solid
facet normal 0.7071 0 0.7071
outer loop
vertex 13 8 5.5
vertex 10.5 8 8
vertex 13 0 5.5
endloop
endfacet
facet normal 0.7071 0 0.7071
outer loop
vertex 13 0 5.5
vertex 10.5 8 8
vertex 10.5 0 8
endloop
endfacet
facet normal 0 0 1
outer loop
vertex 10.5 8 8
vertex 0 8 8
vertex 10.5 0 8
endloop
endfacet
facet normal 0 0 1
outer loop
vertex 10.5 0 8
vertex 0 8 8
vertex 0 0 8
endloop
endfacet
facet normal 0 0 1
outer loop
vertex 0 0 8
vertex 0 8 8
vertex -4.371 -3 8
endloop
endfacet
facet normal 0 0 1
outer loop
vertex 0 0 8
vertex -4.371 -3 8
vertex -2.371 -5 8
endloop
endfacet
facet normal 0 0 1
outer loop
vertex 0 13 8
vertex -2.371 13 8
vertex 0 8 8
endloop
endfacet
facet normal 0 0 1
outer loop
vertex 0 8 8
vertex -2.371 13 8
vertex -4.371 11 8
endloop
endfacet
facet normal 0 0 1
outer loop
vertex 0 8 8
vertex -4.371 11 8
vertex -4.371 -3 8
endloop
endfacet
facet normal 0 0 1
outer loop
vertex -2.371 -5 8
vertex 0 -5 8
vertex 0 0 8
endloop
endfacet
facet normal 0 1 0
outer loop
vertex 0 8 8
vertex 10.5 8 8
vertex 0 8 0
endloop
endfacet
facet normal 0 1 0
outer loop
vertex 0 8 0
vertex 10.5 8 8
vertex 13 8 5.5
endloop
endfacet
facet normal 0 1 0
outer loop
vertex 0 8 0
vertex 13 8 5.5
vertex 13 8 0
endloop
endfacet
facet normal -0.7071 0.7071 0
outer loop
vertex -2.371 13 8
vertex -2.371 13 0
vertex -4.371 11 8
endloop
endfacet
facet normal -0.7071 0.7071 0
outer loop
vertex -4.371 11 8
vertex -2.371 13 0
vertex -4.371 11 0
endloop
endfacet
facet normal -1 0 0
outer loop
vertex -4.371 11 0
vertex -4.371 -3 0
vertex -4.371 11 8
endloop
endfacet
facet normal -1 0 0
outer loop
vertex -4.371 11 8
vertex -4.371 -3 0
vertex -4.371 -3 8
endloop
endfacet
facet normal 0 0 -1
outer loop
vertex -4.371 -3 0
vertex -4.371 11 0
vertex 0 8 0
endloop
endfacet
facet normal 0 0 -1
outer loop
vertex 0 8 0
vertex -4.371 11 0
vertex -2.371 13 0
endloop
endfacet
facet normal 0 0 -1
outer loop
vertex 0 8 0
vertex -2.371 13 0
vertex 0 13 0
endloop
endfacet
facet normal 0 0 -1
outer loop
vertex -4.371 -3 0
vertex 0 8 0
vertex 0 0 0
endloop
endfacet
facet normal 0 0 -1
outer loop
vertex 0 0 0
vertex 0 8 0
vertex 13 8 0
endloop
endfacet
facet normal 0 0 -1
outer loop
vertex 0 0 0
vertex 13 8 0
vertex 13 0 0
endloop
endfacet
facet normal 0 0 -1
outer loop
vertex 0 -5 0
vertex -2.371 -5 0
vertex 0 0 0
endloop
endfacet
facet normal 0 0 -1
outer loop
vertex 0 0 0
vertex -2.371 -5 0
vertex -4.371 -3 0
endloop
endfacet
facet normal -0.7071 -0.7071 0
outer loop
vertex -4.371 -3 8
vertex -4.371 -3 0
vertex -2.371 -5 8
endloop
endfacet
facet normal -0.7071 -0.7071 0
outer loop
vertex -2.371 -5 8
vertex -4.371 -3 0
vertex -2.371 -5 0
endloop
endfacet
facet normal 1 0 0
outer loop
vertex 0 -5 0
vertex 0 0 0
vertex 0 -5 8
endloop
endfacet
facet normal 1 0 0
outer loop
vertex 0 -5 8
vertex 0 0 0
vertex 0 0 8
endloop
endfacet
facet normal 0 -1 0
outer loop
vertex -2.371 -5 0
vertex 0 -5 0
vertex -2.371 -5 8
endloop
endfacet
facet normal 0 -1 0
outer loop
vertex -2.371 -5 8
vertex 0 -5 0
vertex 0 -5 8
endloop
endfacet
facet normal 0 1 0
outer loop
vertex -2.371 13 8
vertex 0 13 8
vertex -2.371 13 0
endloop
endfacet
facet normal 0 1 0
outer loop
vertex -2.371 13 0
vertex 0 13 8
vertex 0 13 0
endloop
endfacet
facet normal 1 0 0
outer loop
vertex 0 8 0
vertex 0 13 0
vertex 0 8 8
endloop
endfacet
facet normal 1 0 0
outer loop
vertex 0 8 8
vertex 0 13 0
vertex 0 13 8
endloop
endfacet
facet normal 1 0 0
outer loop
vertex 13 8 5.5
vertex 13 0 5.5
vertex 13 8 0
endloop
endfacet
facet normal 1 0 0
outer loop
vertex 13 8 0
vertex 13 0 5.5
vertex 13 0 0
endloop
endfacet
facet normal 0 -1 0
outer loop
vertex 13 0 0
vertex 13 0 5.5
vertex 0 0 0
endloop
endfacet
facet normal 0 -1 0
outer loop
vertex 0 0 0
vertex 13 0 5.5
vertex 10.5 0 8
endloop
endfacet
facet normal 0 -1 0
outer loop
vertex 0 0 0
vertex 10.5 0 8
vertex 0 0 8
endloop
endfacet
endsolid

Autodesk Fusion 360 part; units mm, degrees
sketch "Schizzo1" plane through (0, 0, 0) normal (0, 0, 1) x (1, 0, 0)
  line L0 (0, 0) -> (13, 0)
  line L1 (13, 0) -> (13, 8)
  line L2 (13, 8) -> (0, 8)
  line L3 (0, 8) -> (0, 0)
  line L4 (0, -5) -> (-4.3713, -5)
  line L5 (-4.3713, -5) -> (-4.3713, 13)
  line L6 (-4.3713, 13) -> (0, 13)
  line L7 (0, 13) -> (0, -5)
  dimension "d1" = 13
  dimension "d2" = 8
  dimension "d3" = 5
  dimension "d4" = 5
extrude "Estrusione1" add sketch "Schizzo1" along normal blind 6.5 makes body 1
chamfer "Smusso1" distance 3.5 angle 45 2 edges at (-4.3713, -5, 3.25) (-4.3713, 13, 3.25) on bodies 1
extrude "Estrusione2" add sketch "Schizzo1" along normal blind 8 separate body makes body 2
chamfer "Smusso2" distance 2 angle 45 2 edges at (-4.3713, -5, 4) (-4.3713, 13, 4) on bodies 2
chamfer "Smusso3" distance 2.5 angle 45 1 edges at (13, 4, 8) on bodies 2
hidden bodies 1
